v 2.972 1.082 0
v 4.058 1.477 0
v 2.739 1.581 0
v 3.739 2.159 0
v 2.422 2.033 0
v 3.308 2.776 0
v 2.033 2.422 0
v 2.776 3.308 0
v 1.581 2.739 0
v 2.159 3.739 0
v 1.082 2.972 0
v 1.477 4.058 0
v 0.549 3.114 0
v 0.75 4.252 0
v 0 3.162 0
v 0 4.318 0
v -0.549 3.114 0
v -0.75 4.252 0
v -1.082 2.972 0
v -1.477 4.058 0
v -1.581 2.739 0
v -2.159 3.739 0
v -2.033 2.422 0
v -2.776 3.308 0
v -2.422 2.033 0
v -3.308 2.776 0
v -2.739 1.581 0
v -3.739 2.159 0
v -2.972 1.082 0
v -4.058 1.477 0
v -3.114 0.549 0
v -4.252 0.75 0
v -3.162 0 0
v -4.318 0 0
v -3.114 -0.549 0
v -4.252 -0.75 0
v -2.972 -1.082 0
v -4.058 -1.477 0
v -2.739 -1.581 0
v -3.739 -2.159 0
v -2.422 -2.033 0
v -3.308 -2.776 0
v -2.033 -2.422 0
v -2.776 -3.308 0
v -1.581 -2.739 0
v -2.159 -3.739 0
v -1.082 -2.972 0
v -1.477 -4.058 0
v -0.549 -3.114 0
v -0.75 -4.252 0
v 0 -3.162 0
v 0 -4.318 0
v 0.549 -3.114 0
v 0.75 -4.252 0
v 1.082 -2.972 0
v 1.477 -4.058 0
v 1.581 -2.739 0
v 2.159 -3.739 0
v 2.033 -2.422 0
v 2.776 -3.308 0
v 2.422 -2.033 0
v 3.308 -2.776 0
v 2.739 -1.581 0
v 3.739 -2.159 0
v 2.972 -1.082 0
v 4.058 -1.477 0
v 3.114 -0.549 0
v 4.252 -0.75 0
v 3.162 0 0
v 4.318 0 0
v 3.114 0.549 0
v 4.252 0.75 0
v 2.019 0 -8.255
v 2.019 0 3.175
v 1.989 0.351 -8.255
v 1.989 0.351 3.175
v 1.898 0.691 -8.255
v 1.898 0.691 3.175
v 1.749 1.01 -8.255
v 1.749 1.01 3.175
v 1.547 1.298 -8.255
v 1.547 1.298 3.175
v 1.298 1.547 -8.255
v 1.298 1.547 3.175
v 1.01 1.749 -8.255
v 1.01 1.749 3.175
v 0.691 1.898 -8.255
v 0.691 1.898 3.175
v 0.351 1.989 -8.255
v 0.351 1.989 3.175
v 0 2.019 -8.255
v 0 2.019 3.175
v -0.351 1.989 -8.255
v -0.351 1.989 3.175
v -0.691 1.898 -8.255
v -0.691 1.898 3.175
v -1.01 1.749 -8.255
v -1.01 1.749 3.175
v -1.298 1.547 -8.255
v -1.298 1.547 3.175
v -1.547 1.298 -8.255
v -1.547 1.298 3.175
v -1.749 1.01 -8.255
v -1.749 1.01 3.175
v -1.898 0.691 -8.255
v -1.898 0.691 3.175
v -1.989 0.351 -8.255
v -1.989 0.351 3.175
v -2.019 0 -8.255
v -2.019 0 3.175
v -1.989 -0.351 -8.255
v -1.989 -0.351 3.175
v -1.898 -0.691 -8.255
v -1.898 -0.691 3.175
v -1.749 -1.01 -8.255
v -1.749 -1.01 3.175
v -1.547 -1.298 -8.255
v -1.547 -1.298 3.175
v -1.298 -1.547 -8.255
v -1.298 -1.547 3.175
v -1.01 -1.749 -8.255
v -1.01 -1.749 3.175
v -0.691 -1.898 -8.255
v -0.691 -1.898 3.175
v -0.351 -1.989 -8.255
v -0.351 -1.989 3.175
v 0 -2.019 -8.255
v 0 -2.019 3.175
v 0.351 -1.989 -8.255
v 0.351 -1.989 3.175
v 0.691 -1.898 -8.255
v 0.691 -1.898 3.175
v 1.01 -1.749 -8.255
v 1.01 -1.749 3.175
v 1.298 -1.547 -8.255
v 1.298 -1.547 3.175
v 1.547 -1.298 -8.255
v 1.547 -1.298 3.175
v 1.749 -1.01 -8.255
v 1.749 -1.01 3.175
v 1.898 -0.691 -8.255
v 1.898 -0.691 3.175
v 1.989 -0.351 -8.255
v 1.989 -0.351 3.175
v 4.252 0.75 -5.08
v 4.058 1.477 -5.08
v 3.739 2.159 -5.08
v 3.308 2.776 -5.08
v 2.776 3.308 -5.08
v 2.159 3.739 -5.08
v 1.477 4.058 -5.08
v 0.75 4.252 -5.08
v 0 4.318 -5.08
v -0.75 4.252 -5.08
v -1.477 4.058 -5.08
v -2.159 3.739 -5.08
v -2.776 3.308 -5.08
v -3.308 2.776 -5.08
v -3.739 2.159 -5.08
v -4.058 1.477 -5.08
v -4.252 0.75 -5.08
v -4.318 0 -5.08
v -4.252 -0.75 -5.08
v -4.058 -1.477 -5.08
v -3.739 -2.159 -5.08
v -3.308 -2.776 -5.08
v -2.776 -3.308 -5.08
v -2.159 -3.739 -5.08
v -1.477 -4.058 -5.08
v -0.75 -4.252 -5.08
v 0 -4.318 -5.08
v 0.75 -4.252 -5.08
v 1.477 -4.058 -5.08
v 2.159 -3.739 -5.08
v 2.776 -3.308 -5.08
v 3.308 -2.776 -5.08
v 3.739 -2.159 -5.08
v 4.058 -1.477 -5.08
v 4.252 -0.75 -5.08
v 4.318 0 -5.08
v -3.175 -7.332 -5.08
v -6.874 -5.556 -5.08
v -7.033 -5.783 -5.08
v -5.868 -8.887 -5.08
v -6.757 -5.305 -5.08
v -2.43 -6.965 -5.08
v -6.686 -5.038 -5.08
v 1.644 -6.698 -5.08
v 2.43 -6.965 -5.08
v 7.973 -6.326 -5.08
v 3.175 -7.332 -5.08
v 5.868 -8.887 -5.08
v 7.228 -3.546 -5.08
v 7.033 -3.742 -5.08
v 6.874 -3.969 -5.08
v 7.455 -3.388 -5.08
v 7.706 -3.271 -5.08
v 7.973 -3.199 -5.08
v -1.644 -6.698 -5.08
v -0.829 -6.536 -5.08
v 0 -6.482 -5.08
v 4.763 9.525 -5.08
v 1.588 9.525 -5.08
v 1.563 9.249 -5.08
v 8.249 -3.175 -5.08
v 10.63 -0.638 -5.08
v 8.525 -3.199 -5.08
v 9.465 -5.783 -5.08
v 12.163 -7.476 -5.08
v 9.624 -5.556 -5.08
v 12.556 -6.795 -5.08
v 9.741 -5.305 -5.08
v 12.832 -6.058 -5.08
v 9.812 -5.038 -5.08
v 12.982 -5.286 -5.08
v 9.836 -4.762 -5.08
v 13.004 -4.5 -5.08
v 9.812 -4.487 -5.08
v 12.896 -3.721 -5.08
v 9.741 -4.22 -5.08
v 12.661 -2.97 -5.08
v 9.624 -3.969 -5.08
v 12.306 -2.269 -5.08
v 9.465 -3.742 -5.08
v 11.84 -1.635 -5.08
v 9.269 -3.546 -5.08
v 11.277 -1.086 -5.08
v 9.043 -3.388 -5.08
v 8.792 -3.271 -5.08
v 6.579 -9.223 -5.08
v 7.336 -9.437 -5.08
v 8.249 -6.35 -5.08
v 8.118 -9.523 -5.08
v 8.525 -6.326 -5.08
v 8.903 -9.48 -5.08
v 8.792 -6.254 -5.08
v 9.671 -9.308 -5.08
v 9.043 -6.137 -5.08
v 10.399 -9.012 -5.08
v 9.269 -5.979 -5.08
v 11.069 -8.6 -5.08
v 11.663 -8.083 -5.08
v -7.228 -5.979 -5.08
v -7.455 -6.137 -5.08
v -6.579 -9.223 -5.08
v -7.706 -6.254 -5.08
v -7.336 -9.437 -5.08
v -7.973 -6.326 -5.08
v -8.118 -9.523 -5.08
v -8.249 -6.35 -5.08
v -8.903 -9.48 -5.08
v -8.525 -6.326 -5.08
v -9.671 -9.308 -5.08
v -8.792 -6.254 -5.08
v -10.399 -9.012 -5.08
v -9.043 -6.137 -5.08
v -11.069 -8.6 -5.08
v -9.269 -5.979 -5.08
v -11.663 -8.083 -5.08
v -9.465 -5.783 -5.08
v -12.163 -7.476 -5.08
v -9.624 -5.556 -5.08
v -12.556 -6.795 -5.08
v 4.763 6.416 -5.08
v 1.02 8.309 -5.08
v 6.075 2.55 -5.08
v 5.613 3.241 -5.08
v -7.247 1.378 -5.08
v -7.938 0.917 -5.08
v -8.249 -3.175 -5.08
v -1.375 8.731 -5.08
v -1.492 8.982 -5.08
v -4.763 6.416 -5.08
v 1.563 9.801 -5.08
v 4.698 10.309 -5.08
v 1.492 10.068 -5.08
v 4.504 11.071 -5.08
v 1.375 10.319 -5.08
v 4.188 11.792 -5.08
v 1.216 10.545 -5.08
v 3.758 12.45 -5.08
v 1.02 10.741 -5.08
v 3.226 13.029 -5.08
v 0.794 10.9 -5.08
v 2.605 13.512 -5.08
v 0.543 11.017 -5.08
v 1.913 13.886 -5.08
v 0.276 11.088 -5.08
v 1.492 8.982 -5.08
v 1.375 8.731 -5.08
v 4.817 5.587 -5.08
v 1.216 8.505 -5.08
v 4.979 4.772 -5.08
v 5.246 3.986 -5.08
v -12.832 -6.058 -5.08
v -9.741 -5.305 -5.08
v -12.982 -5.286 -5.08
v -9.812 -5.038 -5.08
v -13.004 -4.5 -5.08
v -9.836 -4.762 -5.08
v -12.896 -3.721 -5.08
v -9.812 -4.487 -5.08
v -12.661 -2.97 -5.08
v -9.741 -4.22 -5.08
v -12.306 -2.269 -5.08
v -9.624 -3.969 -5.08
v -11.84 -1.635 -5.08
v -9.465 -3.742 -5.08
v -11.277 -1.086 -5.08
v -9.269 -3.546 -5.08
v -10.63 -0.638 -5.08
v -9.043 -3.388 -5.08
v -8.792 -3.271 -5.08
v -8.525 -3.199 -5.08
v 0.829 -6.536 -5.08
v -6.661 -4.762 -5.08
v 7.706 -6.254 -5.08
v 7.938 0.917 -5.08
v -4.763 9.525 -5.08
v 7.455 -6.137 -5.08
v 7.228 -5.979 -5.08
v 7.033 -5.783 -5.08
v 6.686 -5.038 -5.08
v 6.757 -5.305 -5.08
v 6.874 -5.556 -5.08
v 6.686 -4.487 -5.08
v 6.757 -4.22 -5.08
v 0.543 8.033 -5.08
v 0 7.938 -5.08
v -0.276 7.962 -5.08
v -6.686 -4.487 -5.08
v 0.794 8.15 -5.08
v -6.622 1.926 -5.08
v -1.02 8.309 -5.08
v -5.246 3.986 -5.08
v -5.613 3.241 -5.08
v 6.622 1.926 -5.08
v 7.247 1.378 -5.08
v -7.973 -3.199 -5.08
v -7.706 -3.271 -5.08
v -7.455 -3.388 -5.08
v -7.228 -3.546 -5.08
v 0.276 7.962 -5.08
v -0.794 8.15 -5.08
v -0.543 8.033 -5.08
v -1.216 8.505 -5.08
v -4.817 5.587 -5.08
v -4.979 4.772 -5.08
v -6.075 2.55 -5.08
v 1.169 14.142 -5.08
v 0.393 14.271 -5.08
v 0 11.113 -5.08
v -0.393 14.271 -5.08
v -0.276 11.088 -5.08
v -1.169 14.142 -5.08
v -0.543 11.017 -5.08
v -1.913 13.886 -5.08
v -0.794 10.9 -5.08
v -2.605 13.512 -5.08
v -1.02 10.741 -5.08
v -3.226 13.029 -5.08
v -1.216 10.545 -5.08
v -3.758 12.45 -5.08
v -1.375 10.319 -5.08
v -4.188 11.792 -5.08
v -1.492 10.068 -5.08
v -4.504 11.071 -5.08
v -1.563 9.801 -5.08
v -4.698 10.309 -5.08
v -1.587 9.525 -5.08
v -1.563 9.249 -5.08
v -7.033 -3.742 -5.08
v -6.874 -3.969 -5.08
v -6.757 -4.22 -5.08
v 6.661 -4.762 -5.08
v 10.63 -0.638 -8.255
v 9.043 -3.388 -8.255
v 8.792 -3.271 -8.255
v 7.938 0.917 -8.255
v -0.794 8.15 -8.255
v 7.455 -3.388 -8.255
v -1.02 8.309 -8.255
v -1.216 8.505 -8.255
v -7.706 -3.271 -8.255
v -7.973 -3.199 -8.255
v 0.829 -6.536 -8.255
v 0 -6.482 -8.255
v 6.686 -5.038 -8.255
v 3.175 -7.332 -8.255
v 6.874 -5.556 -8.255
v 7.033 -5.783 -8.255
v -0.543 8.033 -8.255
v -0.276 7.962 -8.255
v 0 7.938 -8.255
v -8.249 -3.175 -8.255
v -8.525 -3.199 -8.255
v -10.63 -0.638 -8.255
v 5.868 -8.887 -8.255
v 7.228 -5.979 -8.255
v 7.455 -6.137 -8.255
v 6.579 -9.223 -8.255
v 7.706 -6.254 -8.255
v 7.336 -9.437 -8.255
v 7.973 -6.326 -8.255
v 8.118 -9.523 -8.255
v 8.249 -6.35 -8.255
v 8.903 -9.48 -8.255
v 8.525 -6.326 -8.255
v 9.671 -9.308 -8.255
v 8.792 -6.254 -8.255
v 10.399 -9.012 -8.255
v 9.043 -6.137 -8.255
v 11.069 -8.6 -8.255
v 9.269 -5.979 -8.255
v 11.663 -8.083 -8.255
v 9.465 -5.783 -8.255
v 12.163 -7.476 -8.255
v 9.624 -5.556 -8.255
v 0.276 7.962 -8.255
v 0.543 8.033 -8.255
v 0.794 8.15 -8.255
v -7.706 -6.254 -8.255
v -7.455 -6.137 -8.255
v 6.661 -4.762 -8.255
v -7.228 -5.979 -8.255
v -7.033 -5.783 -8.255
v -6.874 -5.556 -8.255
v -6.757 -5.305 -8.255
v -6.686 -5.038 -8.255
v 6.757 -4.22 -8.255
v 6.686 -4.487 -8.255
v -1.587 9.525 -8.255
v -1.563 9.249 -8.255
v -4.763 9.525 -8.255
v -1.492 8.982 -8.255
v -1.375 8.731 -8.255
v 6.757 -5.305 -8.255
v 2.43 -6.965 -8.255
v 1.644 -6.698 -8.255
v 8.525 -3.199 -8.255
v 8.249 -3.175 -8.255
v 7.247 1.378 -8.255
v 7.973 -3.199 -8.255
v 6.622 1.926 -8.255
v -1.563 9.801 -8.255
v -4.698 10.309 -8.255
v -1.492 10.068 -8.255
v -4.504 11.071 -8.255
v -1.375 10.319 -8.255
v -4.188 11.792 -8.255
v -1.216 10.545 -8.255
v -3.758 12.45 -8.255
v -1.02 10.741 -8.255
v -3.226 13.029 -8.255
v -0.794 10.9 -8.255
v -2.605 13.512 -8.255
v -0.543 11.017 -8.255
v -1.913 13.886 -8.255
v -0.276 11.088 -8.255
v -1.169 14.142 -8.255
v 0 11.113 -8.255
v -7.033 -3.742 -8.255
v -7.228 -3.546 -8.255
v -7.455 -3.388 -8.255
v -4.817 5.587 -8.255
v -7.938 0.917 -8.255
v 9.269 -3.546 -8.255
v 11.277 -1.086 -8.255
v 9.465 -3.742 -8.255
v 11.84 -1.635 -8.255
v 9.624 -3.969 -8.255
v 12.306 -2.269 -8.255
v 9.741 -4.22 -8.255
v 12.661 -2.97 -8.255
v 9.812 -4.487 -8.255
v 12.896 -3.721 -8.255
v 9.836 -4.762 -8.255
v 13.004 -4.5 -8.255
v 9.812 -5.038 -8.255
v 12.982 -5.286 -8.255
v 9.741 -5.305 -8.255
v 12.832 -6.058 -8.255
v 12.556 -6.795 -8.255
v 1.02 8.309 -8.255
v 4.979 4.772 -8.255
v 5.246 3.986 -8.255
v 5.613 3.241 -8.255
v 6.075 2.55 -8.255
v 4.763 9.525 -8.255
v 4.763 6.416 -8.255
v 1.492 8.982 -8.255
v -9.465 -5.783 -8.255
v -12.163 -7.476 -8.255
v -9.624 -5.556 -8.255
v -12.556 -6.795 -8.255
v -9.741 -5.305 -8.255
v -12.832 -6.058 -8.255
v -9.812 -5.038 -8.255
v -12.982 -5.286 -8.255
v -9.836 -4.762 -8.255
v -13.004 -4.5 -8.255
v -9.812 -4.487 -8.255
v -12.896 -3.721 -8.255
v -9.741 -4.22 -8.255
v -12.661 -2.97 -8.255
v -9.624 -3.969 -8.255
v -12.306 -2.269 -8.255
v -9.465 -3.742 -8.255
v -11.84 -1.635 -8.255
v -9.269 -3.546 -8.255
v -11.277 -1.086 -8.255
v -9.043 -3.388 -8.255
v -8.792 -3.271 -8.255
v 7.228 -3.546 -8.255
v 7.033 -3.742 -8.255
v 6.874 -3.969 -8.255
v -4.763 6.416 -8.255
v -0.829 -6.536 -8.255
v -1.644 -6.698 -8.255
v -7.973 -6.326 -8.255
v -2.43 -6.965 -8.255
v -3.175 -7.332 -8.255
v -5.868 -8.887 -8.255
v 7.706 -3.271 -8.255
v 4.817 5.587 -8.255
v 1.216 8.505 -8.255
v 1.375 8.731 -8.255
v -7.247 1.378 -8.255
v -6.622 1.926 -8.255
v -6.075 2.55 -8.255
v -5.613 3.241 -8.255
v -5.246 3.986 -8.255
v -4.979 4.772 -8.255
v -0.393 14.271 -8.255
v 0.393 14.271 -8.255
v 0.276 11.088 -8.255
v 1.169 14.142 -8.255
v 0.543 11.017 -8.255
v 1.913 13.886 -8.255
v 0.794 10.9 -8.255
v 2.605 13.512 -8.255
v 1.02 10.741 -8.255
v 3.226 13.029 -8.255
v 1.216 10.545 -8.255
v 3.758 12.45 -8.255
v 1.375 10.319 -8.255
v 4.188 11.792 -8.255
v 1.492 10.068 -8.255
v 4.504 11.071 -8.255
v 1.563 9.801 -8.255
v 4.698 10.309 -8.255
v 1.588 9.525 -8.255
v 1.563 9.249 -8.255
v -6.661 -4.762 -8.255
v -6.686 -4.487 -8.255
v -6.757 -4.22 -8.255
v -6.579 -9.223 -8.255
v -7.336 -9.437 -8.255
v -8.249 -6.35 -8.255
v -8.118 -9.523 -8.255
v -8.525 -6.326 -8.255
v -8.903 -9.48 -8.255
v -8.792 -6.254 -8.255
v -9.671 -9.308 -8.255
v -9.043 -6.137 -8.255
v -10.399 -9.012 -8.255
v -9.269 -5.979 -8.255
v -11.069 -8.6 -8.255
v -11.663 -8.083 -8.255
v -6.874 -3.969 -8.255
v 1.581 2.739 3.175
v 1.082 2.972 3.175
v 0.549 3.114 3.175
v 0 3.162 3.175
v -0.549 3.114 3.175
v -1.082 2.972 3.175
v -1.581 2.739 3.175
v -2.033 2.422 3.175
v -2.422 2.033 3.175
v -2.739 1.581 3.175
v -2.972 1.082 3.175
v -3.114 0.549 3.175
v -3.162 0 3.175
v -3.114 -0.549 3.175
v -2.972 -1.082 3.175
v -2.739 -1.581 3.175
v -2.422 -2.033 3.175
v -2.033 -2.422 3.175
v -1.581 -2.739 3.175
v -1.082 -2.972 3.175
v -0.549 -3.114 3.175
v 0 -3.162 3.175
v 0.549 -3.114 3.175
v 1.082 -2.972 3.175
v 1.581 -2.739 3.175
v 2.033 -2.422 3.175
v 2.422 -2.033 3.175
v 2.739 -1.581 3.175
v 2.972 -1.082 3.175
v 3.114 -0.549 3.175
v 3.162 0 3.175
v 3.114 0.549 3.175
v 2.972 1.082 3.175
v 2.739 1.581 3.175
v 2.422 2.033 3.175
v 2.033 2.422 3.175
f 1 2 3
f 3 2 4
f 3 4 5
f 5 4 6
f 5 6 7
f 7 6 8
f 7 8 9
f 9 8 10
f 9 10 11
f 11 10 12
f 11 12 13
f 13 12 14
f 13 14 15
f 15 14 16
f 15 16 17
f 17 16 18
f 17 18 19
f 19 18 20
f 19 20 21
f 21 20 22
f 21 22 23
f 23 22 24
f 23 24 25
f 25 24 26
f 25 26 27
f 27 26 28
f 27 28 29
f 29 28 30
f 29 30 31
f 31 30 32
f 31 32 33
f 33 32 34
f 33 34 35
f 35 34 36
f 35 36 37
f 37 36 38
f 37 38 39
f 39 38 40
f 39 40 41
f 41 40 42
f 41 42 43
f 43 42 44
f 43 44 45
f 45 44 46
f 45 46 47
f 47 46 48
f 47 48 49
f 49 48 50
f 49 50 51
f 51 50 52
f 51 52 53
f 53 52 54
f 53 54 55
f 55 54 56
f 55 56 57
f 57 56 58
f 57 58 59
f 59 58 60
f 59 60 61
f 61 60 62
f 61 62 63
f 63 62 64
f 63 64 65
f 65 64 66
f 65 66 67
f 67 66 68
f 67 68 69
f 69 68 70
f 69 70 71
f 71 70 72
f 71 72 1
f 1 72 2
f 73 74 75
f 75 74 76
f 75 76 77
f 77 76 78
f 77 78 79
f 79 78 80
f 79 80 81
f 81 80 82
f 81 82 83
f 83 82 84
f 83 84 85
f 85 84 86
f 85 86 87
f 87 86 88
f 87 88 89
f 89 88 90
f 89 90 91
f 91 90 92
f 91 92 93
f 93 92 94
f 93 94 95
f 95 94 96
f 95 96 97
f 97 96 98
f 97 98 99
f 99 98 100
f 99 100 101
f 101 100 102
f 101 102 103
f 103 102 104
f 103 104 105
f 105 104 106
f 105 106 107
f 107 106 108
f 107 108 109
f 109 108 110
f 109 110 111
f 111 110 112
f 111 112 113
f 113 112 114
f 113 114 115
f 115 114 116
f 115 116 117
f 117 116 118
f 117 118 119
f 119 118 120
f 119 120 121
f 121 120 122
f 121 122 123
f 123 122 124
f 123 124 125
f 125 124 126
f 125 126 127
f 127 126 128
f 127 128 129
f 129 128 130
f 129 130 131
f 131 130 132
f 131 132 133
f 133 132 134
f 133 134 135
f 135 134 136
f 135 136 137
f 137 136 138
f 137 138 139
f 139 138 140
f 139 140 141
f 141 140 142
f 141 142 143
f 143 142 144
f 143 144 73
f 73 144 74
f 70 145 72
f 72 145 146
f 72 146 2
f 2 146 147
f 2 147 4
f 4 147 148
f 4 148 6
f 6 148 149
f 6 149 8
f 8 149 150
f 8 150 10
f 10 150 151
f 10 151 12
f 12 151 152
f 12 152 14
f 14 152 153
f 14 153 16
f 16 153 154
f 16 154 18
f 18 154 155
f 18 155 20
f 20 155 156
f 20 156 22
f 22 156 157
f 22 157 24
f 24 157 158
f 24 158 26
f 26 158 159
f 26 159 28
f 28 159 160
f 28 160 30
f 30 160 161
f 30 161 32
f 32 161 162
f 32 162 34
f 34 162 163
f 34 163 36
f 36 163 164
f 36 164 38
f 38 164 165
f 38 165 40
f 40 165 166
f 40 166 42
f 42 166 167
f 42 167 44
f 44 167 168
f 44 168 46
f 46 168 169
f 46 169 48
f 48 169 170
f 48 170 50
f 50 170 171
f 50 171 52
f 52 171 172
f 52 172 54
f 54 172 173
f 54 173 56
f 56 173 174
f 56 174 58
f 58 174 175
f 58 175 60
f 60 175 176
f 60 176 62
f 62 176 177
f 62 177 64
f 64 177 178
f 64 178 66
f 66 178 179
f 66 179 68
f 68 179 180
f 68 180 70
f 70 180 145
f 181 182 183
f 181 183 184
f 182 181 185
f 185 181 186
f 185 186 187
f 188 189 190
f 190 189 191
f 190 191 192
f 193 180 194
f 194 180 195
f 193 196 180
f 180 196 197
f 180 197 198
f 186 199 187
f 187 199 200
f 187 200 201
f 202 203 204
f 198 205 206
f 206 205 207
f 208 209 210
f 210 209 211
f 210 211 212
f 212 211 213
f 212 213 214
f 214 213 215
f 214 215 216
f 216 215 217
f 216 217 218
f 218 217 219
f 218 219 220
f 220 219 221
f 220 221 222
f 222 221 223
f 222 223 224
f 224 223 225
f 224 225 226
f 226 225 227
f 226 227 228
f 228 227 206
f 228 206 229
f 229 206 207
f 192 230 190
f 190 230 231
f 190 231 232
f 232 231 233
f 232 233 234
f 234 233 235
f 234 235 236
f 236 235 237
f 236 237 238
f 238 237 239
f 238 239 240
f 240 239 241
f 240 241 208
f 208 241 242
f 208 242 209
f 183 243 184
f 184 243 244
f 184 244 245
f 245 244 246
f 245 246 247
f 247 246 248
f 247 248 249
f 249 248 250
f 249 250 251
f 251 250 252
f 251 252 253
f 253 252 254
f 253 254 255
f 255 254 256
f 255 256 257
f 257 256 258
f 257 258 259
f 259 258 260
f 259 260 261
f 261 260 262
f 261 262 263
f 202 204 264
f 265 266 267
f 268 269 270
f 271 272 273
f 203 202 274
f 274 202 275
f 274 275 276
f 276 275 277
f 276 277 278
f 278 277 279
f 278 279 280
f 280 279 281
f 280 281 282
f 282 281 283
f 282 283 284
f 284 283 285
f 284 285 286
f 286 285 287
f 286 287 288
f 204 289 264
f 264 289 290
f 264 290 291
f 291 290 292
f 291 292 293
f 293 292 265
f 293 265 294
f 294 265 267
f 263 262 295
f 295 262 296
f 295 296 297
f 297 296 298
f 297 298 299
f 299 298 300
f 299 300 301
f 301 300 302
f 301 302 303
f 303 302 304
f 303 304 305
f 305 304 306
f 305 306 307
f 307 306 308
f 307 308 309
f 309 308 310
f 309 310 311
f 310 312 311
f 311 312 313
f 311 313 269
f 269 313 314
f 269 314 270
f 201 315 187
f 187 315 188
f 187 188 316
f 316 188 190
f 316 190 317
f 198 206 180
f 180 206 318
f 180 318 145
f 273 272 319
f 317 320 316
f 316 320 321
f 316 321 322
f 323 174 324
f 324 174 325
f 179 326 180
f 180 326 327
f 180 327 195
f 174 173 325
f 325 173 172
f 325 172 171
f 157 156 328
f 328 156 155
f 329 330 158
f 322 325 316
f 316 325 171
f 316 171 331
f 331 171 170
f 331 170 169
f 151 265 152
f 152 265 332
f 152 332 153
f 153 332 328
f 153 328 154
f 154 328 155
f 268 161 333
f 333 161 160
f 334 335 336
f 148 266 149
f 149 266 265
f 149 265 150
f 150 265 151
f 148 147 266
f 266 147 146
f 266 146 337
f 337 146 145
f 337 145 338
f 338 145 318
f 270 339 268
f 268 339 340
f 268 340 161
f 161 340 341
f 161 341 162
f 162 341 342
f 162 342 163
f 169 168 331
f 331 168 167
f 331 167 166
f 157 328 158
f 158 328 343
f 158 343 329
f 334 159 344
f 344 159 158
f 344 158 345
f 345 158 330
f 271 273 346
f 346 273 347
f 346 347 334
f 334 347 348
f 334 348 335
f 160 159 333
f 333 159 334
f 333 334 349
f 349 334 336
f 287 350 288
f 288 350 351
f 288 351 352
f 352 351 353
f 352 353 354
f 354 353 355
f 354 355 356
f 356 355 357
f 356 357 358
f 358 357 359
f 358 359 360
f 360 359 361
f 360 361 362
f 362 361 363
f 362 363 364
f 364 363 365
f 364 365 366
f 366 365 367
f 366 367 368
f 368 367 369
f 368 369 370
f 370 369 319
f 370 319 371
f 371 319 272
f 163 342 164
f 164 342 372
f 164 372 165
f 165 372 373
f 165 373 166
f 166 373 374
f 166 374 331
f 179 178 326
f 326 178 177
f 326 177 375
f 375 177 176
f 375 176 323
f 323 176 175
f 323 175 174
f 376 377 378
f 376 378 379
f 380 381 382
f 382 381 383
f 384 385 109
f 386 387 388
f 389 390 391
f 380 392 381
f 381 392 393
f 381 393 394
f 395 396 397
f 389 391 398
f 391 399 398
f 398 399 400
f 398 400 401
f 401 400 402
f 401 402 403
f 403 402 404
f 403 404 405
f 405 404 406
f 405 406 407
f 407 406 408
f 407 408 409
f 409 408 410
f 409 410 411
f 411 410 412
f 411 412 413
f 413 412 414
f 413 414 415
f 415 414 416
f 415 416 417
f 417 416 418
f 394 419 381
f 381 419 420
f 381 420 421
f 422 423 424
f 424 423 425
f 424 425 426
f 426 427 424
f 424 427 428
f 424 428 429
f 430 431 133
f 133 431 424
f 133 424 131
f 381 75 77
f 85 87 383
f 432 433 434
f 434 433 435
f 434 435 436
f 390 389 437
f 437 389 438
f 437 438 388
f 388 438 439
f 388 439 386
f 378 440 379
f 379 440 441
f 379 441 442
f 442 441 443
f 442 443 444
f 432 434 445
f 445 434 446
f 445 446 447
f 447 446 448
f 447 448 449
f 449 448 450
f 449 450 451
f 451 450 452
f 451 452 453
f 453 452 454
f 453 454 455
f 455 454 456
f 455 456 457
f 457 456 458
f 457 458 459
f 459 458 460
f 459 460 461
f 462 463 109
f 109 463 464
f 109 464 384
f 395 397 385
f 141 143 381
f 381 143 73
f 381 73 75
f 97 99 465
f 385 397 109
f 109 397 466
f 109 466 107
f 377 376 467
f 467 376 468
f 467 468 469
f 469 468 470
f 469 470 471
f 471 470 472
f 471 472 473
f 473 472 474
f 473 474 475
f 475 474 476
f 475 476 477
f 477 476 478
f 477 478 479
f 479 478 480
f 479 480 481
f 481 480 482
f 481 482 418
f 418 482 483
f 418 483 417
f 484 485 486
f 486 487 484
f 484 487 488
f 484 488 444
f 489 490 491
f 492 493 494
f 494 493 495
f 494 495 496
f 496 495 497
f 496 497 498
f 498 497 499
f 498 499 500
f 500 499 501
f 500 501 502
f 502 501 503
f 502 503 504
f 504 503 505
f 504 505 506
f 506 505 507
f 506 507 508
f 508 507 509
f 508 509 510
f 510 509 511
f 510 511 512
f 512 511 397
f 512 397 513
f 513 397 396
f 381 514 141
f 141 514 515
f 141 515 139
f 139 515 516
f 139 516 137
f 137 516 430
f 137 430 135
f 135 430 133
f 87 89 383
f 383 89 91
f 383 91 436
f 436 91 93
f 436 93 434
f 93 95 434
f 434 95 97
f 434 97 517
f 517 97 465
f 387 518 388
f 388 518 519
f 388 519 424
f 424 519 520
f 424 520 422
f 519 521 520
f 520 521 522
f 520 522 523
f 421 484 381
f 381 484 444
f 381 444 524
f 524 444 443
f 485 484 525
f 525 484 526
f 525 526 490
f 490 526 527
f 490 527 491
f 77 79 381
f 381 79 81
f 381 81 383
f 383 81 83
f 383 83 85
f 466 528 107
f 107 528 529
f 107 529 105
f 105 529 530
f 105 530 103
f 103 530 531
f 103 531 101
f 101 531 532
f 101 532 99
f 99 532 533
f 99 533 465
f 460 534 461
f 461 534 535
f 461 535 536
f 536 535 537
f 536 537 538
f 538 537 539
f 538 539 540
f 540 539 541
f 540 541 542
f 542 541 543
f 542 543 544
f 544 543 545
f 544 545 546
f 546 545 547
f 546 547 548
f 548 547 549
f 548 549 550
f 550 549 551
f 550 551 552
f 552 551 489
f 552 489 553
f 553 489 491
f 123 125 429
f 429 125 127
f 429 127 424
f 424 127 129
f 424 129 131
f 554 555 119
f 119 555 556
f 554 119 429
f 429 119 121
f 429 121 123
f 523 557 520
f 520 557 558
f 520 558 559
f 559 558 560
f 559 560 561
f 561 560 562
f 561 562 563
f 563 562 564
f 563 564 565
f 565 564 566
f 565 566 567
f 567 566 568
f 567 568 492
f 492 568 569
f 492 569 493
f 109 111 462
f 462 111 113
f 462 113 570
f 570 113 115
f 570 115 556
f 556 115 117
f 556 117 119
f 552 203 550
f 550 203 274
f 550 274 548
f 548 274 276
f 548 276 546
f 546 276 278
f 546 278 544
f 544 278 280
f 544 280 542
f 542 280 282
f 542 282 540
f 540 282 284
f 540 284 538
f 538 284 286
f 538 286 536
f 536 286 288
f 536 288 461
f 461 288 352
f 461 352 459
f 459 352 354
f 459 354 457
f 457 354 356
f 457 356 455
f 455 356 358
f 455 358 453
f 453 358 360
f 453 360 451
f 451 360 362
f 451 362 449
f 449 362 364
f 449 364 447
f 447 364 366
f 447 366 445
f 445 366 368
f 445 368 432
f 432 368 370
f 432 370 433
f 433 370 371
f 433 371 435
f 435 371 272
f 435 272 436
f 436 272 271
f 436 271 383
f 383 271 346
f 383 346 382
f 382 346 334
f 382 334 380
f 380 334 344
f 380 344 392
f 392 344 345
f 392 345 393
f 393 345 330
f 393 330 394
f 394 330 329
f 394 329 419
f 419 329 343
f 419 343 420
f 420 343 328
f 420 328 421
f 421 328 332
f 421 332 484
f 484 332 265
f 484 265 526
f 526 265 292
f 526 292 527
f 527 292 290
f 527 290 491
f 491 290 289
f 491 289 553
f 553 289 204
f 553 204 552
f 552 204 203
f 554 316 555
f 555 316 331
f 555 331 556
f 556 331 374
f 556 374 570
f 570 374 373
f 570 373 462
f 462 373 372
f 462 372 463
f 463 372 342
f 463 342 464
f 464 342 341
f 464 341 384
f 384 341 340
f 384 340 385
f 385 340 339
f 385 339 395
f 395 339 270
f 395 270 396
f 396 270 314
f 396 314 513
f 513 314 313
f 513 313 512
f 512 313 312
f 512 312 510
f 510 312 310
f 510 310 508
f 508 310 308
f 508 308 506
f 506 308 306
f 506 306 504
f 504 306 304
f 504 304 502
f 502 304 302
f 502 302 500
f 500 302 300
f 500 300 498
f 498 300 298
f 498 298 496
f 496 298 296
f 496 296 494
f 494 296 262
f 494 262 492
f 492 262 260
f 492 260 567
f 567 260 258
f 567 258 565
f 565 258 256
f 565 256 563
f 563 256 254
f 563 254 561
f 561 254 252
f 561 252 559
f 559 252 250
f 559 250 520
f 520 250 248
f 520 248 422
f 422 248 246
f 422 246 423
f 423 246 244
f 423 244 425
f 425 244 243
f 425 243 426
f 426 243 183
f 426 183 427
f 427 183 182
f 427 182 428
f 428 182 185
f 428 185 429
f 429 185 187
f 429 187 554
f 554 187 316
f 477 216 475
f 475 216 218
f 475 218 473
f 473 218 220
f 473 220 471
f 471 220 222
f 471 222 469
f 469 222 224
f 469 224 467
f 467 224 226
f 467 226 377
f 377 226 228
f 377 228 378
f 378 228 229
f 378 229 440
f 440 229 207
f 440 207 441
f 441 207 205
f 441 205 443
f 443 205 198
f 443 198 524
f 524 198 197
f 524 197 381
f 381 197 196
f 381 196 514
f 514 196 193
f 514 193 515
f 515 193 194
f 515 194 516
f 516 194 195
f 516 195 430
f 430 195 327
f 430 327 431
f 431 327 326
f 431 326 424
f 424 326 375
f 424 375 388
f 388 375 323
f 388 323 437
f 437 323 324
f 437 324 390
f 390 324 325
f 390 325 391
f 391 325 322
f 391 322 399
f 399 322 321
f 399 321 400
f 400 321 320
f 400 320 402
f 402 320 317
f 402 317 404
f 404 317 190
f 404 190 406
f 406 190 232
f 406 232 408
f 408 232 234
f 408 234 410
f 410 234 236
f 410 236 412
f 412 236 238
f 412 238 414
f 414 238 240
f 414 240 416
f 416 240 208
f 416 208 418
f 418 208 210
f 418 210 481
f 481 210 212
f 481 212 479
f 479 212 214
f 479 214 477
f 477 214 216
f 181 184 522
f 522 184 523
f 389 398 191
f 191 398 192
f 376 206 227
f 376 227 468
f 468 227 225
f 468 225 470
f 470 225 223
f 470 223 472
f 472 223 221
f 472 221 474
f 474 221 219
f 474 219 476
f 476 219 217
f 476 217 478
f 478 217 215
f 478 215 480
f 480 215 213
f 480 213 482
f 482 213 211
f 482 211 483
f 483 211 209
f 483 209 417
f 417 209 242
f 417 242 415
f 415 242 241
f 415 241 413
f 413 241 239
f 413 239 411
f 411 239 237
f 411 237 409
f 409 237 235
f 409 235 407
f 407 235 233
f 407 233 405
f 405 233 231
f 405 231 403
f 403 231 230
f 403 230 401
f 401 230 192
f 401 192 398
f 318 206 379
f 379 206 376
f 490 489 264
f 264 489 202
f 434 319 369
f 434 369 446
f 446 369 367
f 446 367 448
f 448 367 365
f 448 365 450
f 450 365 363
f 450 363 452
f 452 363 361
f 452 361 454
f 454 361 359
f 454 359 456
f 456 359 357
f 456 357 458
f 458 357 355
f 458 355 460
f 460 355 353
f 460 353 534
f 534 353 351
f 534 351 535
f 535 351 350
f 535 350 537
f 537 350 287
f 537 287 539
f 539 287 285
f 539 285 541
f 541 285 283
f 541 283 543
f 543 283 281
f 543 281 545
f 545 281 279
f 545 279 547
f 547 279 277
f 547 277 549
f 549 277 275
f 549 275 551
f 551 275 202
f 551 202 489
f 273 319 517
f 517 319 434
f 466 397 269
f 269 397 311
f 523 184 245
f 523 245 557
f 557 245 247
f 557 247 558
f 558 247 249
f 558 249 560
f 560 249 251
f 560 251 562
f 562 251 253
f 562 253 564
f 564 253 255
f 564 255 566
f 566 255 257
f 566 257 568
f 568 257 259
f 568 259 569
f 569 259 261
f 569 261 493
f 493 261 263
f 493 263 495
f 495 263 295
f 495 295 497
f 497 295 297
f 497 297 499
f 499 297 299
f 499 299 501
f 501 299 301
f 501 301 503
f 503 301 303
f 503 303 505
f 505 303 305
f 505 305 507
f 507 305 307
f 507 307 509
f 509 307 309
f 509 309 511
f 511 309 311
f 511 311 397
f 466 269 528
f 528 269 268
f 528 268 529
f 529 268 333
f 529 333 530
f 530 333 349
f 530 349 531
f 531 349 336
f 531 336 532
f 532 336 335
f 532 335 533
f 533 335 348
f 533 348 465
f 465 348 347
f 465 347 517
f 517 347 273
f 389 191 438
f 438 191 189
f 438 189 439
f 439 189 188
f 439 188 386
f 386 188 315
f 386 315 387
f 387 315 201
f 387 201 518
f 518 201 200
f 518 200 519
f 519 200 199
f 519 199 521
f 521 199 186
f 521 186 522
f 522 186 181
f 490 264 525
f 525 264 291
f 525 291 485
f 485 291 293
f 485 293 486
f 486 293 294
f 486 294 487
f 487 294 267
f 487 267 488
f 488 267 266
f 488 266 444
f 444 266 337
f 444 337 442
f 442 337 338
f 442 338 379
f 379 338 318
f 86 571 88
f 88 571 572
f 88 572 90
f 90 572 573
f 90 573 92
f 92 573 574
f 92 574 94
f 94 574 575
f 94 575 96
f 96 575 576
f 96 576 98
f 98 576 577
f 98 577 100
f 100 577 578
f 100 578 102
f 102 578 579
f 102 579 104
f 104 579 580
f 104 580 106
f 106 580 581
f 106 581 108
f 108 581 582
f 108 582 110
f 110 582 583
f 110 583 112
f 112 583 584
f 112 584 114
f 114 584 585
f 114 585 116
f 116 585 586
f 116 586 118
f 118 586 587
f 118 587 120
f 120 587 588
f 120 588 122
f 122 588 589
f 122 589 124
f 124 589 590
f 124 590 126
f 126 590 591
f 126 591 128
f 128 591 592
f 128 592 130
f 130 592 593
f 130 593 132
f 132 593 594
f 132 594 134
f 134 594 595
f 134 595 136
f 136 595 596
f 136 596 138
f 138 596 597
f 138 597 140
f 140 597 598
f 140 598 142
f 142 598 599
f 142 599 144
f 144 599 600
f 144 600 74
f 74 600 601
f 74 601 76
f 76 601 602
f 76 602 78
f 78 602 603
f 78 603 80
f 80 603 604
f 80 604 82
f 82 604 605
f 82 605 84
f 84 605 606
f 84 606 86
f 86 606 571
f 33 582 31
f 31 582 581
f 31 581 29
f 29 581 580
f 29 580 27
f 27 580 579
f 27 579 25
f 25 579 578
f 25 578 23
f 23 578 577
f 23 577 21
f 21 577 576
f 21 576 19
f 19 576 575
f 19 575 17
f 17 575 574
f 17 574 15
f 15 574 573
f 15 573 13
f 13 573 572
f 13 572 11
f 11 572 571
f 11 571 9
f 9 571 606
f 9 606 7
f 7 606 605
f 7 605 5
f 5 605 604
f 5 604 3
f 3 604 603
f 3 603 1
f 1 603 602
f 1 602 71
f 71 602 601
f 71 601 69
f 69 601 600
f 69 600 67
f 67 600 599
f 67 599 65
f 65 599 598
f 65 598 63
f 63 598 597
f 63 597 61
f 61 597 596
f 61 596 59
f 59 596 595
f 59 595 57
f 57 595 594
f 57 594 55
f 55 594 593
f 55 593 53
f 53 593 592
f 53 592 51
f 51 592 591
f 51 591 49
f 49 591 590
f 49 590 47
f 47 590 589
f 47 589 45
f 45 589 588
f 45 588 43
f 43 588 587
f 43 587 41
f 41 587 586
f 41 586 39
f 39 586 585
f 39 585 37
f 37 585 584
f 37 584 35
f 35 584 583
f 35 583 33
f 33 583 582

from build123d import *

# Parameters (mm, degrees)
F_1_8_0_1250_DOWEL_HOLE1_D = 3.175
CIRPATTERN2_COUNT          = 3
CUT_EXTRUDE1_START         = -10
SKETCH7_R                  = 15.875
CUT_EXTRUDE1_DEPTH         = 10
FILLET1_R                  = 6.35
BOSS_EXTRUDE1_START        = 3.175
SKETCH11_R                 = 3.1623
SKETCH11_R_2               = 2.0193
BOSS_EXTRUDE1_DEPTH        = 3.175


with BuildPart() as part:
    # Sketch1 → Revolve1 (revolve)
    with BuildSketch(Plane(origin=(0, 0, 0), x_dir=(0, 0, -1), z_dir=(1, 0, 0)), mode=Mode.PRIVATE) as revolve1_sk:
        Polygon((0, 2.0193), (0, 4.318), (5.08, 4.318), (5.08, 15.875), (8.255, 15.875), (8.255, 2.0193), align=None)
    revolve(revolve1_sk.sketch.rotate(Axis((0, 0, 0), (0, 0, -1)), 90), axis=Axis((0, 0, 0), (0, 0, -1)))

    # 1/8 (0.1250) Dowel Hole1 (through all)
    with Locations(Plane.XY.offset(-5.08)):
        with Locations((0, 9.525), (0, 0)):
            f_1_8_0_1250_dowel_hole1 = Hole(F_1_8_0_1250_DOWEL_HOLE1_D / 2)

    # CirPattern2: 1/8 (0.1250) Dowel Hole1 ×3 about axis
    cirpattern2_axis = Axis((0, 0, 0), (0, 0, 1))
    for i in range(1, CIRPATTERN2_COUNT):
        add(f_1_8_0_1250_dowel_hole1.rotate(cirpattern2_axis, i * 360 / CIRPATTERN2_COUNT), mode=Mode.SUBTRACT)

    # Sketch7 → Cut-Extrude1 (cut)
    with BuildSketch(Plane.XY.offset(-5.08).offset(CUT_EXTRUDE1_START)):
        Circle(SKETCH7_R)
        with BuildLine():
            ThreePointArc((-4.7625, 9.525), (0, 14.2875), (4.7625, 9.525))
            Line((4.7625, 9.525), (4.7625, 2.749630657))
            Line((4.7625, 2.749630657), (10.630141971, -0.638054014))
            ThreePointArc((10.630141971, -0.638054014), (12.373337957, -7.14375), (5.867641971, -8.886945986))
            Line((5.867641971, -8.886945986), (0, -5.499261314))
            Line((0, -5.499261314), (-5.867641971, -8.886945986))
            ThreePointArc((-5.867641971, -8.886945986), (-12.373337957, -7.14375), (-10.630141971, -0.638054014))
            Line((-10.630141971, -0.638054014), (-4.7625, 2.749630657))
            Line((-4.7625, 2.749630657), (-4.7625, 9.525))
        make_face(mode=Mode.SUBTRACT)
    extrude(amount=CUT_EXTRUDE1_DEPTH, mode=Mode.SUBTRACT)

    # Fillet1
    fillet1_edges = [part.edges().sort_by_distance(p)[0] for p in [
        (0, -5.499261314, -6.6675),
        (4.7625, 2.749630657, -6.6675),
        (-4.7625, 2.749630657, -6.6675),
    ]]
    fillet(fillet1_edges, radius=FILLET1_R)

    # Sketch11 → Boss-Extrude1 (add)
    with BuildSketch(Plane.XY.offset(BOSS_EXTRUDE1_START)):
        with Locations(Location((0, 0, 0), (0, 0, 180))):
            Circle(SKETCH11_R)
        Circle(SKETCH11_R_2, mode=Mode.SUBTRACT)
    extrude(amount=-BOSS_EXTRUDE1_DEPTH)


solid = part.part
